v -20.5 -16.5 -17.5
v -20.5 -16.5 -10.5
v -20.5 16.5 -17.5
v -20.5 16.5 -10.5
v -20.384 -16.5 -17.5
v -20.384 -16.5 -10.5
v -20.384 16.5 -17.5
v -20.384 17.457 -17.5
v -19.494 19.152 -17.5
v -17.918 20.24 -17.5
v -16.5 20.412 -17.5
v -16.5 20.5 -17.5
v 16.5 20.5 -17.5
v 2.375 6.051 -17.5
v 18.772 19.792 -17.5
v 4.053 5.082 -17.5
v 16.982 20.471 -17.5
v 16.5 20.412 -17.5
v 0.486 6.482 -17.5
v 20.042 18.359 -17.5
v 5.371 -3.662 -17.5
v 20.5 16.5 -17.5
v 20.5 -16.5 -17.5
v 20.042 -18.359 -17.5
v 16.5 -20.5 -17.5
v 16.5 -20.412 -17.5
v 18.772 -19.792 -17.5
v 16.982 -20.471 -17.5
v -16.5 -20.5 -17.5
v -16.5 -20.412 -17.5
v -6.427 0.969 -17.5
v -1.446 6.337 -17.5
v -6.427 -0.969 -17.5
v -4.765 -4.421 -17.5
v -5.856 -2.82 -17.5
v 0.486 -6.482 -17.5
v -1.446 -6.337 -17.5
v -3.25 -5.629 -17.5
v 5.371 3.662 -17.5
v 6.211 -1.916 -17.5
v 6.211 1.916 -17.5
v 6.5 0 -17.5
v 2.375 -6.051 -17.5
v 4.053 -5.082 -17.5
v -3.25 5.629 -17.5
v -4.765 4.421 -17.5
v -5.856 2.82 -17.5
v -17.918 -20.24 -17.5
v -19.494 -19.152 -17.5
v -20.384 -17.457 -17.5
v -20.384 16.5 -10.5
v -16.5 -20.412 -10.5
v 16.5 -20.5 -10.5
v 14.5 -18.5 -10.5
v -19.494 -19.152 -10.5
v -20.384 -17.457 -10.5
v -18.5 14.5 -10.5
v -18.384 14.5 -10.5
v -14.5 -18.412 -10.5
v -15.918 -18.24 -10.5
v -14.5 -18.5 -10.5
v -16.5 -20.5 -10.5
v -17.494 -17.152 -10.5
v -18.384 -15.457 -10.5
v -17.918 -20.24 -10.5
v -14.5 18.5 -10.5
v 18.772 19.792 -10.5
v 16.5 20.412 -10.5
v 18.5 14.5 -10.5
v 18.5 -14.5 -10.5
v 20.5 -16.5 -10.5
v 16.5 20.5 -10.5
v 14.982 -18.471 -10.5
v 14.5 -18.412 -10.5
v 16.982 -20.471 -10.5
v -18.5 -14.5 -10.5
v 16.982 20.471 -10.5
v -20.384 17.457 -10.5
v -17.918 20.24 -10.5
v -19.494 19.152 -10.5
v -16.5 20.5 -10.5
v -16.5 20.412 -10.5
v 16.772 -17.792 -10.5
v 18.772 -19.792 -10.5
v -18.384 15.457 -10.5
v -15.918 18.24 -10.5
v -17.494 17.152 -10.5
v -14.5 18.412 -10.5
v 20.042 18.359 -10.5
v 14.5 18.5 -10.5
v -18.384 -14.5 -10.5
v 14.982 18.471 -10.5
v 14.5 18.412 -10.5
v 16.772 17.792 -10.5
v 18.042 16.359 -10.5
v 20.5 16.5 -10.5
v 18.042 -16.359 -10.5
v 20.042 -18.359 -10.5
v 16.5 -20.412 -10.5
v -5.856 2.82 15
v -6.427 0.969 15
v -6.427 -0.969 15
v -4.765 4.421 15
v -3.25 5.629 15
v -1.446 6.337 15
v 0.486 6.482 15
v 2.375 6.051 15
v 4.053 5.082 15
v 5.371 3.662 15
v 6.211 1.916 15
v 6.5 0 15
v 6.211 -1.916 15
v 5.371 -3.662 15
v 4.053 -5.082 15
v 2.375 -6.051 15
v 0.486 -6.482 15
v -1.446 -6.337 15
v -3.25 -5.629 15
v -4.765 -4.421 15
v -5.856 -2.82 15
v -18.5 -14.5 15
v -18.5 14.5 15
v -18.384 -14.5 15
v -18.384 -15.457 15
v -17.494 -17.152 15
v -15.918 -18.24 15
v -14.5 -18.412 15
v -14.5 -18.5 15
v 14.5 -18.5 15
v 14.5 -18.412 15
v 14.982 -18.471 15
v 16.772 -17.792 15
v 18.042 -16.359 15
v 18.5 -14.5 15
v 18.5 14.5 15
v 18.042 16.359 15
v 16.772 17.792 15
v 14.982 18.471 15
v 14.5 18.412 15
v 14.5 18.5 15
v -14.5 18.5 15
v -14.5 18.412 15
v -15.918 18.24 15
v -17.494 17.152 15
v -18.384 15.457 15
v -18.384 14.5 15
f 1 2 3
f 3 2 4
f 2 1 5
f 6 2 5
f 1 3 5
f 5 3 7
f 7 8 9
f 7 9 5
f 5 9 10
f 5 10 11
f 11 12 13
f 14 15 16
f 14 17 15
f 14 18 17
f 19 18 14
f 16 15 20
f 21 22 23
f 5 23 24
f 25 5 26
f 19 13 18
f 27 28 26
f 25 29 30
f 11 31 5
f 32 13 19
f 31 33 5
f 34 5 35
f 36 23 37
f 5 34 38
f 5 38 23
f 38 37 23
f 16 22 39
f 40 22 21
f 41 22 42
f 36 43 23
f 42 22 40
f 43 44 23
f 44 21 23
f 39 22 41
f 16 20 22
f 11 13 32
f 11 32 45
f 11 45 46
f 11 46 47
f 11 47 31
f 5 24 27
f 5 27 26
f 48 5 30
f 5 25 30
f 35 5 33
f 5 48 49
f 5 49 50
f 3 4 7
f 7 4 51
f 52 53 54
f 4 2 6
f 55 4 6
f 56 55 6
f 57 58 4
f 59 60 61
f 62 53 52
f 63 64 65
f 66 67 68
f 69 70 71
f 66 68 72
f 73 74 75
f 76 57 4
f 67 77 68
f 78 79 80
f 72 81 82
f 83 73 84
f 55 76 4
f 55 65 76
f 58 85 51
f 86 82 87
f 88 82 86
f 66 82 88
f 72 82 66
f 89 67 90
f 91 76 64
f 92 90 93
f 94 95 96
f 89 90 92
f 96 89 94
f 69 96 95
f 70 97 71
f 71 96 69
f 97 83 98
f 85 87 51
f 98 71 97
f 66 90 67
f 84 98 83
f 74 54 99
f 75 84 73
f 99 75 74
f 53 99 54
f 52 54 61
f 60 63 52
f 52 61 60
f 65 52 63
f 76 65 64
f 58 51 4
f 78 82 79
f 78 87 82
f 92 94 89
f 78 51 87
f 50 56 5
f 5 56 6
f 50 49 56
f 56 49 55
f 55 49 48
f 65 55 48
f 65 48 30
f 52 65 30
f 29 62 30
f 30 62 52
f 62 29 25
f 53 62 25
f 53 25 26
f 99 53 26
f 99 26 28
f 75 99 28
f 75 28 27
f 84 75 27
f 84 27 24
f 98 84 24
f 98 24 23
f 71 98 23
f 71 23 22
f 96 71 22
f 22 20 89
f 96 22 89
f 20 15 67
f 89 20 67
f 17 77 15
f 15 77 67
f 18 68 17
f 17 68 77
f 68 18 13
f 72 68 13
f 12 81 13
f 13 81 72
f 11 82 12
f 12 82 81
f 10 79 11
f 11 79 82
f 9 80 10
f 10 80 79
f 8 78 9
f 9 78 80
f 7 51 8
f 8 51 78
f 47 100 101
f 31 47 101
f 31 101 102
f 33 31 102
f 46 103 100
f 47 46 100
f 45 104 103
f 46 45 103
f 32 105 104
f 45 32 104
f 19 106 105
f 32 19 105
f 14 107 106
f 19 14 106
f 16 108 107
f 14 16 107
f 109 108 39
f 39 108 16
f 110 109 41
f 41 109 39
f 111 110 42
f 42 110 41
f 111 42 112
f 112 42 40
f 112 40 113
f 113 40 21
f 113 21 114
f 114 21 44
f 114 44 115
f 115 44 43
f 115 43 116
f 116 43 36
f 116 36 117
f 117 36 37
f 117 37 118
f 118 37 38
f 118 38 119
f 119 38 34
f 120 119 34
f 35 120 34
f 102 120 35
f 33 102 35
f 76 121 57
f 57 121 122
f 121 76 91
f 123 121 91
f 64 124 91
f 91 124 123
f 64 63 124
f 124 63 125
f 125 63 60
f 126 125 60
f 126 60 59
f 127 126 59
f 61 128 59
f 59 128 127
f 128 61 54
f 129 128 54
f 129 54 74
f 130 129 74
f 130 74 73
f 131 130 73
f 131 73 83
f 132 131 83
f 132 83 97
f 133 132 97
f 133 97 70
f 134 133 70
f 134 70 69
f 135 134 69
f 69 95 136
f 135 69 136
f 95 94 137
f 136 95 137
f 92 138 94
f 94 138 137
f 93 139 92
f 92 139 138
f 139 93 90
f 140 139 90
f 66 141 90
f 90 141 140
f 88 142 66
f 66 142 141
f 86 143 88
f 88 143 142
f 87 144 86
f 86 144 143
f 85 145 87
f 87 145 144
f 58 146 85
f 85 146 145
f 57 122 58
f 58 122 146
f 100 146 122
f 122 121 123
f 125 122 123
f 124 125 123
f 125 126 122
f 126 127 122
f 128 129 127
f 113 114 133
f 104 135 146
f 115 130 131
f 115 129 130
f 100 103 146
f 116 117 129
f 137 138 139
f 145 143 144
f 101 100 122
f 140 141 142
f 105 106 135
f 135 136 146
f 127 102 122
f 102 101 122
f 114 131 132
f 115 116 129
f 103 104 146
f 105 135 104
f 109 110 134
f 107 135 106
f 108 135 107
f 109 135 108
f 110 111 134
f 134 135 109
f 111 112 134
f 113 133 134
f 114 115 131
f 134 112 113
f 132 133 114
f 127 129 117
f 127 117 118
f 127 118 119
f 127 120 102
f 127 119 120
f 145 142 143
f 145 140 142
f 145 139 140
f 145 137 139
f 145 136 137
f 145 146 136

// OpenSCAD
use <MCAD/boxes.scad>



module burato_tornillo( diametro_tornillo, diametro_arandela ) {

	cylinder(h=1000, r1=diametro_tornillo/2, r2=diametro_tornillo/2, center=true);
	cylinder(h=11, r1=diametro_arandela/2, r2=diametro_arandela/2, center=true);
	//cube([diametro_tuerca,diametro_tuerca,7], center = true);
}

difference() {
	union() {
		roundedBox([37, 37, 30], 4, true);  
		translate([0,0,-14]) roundedBox([41, 41, 7], 4, true);  
	}

	translate([0,0,-24]) cylinder(h=100, r1=13/2 , r2=13/2);

}
